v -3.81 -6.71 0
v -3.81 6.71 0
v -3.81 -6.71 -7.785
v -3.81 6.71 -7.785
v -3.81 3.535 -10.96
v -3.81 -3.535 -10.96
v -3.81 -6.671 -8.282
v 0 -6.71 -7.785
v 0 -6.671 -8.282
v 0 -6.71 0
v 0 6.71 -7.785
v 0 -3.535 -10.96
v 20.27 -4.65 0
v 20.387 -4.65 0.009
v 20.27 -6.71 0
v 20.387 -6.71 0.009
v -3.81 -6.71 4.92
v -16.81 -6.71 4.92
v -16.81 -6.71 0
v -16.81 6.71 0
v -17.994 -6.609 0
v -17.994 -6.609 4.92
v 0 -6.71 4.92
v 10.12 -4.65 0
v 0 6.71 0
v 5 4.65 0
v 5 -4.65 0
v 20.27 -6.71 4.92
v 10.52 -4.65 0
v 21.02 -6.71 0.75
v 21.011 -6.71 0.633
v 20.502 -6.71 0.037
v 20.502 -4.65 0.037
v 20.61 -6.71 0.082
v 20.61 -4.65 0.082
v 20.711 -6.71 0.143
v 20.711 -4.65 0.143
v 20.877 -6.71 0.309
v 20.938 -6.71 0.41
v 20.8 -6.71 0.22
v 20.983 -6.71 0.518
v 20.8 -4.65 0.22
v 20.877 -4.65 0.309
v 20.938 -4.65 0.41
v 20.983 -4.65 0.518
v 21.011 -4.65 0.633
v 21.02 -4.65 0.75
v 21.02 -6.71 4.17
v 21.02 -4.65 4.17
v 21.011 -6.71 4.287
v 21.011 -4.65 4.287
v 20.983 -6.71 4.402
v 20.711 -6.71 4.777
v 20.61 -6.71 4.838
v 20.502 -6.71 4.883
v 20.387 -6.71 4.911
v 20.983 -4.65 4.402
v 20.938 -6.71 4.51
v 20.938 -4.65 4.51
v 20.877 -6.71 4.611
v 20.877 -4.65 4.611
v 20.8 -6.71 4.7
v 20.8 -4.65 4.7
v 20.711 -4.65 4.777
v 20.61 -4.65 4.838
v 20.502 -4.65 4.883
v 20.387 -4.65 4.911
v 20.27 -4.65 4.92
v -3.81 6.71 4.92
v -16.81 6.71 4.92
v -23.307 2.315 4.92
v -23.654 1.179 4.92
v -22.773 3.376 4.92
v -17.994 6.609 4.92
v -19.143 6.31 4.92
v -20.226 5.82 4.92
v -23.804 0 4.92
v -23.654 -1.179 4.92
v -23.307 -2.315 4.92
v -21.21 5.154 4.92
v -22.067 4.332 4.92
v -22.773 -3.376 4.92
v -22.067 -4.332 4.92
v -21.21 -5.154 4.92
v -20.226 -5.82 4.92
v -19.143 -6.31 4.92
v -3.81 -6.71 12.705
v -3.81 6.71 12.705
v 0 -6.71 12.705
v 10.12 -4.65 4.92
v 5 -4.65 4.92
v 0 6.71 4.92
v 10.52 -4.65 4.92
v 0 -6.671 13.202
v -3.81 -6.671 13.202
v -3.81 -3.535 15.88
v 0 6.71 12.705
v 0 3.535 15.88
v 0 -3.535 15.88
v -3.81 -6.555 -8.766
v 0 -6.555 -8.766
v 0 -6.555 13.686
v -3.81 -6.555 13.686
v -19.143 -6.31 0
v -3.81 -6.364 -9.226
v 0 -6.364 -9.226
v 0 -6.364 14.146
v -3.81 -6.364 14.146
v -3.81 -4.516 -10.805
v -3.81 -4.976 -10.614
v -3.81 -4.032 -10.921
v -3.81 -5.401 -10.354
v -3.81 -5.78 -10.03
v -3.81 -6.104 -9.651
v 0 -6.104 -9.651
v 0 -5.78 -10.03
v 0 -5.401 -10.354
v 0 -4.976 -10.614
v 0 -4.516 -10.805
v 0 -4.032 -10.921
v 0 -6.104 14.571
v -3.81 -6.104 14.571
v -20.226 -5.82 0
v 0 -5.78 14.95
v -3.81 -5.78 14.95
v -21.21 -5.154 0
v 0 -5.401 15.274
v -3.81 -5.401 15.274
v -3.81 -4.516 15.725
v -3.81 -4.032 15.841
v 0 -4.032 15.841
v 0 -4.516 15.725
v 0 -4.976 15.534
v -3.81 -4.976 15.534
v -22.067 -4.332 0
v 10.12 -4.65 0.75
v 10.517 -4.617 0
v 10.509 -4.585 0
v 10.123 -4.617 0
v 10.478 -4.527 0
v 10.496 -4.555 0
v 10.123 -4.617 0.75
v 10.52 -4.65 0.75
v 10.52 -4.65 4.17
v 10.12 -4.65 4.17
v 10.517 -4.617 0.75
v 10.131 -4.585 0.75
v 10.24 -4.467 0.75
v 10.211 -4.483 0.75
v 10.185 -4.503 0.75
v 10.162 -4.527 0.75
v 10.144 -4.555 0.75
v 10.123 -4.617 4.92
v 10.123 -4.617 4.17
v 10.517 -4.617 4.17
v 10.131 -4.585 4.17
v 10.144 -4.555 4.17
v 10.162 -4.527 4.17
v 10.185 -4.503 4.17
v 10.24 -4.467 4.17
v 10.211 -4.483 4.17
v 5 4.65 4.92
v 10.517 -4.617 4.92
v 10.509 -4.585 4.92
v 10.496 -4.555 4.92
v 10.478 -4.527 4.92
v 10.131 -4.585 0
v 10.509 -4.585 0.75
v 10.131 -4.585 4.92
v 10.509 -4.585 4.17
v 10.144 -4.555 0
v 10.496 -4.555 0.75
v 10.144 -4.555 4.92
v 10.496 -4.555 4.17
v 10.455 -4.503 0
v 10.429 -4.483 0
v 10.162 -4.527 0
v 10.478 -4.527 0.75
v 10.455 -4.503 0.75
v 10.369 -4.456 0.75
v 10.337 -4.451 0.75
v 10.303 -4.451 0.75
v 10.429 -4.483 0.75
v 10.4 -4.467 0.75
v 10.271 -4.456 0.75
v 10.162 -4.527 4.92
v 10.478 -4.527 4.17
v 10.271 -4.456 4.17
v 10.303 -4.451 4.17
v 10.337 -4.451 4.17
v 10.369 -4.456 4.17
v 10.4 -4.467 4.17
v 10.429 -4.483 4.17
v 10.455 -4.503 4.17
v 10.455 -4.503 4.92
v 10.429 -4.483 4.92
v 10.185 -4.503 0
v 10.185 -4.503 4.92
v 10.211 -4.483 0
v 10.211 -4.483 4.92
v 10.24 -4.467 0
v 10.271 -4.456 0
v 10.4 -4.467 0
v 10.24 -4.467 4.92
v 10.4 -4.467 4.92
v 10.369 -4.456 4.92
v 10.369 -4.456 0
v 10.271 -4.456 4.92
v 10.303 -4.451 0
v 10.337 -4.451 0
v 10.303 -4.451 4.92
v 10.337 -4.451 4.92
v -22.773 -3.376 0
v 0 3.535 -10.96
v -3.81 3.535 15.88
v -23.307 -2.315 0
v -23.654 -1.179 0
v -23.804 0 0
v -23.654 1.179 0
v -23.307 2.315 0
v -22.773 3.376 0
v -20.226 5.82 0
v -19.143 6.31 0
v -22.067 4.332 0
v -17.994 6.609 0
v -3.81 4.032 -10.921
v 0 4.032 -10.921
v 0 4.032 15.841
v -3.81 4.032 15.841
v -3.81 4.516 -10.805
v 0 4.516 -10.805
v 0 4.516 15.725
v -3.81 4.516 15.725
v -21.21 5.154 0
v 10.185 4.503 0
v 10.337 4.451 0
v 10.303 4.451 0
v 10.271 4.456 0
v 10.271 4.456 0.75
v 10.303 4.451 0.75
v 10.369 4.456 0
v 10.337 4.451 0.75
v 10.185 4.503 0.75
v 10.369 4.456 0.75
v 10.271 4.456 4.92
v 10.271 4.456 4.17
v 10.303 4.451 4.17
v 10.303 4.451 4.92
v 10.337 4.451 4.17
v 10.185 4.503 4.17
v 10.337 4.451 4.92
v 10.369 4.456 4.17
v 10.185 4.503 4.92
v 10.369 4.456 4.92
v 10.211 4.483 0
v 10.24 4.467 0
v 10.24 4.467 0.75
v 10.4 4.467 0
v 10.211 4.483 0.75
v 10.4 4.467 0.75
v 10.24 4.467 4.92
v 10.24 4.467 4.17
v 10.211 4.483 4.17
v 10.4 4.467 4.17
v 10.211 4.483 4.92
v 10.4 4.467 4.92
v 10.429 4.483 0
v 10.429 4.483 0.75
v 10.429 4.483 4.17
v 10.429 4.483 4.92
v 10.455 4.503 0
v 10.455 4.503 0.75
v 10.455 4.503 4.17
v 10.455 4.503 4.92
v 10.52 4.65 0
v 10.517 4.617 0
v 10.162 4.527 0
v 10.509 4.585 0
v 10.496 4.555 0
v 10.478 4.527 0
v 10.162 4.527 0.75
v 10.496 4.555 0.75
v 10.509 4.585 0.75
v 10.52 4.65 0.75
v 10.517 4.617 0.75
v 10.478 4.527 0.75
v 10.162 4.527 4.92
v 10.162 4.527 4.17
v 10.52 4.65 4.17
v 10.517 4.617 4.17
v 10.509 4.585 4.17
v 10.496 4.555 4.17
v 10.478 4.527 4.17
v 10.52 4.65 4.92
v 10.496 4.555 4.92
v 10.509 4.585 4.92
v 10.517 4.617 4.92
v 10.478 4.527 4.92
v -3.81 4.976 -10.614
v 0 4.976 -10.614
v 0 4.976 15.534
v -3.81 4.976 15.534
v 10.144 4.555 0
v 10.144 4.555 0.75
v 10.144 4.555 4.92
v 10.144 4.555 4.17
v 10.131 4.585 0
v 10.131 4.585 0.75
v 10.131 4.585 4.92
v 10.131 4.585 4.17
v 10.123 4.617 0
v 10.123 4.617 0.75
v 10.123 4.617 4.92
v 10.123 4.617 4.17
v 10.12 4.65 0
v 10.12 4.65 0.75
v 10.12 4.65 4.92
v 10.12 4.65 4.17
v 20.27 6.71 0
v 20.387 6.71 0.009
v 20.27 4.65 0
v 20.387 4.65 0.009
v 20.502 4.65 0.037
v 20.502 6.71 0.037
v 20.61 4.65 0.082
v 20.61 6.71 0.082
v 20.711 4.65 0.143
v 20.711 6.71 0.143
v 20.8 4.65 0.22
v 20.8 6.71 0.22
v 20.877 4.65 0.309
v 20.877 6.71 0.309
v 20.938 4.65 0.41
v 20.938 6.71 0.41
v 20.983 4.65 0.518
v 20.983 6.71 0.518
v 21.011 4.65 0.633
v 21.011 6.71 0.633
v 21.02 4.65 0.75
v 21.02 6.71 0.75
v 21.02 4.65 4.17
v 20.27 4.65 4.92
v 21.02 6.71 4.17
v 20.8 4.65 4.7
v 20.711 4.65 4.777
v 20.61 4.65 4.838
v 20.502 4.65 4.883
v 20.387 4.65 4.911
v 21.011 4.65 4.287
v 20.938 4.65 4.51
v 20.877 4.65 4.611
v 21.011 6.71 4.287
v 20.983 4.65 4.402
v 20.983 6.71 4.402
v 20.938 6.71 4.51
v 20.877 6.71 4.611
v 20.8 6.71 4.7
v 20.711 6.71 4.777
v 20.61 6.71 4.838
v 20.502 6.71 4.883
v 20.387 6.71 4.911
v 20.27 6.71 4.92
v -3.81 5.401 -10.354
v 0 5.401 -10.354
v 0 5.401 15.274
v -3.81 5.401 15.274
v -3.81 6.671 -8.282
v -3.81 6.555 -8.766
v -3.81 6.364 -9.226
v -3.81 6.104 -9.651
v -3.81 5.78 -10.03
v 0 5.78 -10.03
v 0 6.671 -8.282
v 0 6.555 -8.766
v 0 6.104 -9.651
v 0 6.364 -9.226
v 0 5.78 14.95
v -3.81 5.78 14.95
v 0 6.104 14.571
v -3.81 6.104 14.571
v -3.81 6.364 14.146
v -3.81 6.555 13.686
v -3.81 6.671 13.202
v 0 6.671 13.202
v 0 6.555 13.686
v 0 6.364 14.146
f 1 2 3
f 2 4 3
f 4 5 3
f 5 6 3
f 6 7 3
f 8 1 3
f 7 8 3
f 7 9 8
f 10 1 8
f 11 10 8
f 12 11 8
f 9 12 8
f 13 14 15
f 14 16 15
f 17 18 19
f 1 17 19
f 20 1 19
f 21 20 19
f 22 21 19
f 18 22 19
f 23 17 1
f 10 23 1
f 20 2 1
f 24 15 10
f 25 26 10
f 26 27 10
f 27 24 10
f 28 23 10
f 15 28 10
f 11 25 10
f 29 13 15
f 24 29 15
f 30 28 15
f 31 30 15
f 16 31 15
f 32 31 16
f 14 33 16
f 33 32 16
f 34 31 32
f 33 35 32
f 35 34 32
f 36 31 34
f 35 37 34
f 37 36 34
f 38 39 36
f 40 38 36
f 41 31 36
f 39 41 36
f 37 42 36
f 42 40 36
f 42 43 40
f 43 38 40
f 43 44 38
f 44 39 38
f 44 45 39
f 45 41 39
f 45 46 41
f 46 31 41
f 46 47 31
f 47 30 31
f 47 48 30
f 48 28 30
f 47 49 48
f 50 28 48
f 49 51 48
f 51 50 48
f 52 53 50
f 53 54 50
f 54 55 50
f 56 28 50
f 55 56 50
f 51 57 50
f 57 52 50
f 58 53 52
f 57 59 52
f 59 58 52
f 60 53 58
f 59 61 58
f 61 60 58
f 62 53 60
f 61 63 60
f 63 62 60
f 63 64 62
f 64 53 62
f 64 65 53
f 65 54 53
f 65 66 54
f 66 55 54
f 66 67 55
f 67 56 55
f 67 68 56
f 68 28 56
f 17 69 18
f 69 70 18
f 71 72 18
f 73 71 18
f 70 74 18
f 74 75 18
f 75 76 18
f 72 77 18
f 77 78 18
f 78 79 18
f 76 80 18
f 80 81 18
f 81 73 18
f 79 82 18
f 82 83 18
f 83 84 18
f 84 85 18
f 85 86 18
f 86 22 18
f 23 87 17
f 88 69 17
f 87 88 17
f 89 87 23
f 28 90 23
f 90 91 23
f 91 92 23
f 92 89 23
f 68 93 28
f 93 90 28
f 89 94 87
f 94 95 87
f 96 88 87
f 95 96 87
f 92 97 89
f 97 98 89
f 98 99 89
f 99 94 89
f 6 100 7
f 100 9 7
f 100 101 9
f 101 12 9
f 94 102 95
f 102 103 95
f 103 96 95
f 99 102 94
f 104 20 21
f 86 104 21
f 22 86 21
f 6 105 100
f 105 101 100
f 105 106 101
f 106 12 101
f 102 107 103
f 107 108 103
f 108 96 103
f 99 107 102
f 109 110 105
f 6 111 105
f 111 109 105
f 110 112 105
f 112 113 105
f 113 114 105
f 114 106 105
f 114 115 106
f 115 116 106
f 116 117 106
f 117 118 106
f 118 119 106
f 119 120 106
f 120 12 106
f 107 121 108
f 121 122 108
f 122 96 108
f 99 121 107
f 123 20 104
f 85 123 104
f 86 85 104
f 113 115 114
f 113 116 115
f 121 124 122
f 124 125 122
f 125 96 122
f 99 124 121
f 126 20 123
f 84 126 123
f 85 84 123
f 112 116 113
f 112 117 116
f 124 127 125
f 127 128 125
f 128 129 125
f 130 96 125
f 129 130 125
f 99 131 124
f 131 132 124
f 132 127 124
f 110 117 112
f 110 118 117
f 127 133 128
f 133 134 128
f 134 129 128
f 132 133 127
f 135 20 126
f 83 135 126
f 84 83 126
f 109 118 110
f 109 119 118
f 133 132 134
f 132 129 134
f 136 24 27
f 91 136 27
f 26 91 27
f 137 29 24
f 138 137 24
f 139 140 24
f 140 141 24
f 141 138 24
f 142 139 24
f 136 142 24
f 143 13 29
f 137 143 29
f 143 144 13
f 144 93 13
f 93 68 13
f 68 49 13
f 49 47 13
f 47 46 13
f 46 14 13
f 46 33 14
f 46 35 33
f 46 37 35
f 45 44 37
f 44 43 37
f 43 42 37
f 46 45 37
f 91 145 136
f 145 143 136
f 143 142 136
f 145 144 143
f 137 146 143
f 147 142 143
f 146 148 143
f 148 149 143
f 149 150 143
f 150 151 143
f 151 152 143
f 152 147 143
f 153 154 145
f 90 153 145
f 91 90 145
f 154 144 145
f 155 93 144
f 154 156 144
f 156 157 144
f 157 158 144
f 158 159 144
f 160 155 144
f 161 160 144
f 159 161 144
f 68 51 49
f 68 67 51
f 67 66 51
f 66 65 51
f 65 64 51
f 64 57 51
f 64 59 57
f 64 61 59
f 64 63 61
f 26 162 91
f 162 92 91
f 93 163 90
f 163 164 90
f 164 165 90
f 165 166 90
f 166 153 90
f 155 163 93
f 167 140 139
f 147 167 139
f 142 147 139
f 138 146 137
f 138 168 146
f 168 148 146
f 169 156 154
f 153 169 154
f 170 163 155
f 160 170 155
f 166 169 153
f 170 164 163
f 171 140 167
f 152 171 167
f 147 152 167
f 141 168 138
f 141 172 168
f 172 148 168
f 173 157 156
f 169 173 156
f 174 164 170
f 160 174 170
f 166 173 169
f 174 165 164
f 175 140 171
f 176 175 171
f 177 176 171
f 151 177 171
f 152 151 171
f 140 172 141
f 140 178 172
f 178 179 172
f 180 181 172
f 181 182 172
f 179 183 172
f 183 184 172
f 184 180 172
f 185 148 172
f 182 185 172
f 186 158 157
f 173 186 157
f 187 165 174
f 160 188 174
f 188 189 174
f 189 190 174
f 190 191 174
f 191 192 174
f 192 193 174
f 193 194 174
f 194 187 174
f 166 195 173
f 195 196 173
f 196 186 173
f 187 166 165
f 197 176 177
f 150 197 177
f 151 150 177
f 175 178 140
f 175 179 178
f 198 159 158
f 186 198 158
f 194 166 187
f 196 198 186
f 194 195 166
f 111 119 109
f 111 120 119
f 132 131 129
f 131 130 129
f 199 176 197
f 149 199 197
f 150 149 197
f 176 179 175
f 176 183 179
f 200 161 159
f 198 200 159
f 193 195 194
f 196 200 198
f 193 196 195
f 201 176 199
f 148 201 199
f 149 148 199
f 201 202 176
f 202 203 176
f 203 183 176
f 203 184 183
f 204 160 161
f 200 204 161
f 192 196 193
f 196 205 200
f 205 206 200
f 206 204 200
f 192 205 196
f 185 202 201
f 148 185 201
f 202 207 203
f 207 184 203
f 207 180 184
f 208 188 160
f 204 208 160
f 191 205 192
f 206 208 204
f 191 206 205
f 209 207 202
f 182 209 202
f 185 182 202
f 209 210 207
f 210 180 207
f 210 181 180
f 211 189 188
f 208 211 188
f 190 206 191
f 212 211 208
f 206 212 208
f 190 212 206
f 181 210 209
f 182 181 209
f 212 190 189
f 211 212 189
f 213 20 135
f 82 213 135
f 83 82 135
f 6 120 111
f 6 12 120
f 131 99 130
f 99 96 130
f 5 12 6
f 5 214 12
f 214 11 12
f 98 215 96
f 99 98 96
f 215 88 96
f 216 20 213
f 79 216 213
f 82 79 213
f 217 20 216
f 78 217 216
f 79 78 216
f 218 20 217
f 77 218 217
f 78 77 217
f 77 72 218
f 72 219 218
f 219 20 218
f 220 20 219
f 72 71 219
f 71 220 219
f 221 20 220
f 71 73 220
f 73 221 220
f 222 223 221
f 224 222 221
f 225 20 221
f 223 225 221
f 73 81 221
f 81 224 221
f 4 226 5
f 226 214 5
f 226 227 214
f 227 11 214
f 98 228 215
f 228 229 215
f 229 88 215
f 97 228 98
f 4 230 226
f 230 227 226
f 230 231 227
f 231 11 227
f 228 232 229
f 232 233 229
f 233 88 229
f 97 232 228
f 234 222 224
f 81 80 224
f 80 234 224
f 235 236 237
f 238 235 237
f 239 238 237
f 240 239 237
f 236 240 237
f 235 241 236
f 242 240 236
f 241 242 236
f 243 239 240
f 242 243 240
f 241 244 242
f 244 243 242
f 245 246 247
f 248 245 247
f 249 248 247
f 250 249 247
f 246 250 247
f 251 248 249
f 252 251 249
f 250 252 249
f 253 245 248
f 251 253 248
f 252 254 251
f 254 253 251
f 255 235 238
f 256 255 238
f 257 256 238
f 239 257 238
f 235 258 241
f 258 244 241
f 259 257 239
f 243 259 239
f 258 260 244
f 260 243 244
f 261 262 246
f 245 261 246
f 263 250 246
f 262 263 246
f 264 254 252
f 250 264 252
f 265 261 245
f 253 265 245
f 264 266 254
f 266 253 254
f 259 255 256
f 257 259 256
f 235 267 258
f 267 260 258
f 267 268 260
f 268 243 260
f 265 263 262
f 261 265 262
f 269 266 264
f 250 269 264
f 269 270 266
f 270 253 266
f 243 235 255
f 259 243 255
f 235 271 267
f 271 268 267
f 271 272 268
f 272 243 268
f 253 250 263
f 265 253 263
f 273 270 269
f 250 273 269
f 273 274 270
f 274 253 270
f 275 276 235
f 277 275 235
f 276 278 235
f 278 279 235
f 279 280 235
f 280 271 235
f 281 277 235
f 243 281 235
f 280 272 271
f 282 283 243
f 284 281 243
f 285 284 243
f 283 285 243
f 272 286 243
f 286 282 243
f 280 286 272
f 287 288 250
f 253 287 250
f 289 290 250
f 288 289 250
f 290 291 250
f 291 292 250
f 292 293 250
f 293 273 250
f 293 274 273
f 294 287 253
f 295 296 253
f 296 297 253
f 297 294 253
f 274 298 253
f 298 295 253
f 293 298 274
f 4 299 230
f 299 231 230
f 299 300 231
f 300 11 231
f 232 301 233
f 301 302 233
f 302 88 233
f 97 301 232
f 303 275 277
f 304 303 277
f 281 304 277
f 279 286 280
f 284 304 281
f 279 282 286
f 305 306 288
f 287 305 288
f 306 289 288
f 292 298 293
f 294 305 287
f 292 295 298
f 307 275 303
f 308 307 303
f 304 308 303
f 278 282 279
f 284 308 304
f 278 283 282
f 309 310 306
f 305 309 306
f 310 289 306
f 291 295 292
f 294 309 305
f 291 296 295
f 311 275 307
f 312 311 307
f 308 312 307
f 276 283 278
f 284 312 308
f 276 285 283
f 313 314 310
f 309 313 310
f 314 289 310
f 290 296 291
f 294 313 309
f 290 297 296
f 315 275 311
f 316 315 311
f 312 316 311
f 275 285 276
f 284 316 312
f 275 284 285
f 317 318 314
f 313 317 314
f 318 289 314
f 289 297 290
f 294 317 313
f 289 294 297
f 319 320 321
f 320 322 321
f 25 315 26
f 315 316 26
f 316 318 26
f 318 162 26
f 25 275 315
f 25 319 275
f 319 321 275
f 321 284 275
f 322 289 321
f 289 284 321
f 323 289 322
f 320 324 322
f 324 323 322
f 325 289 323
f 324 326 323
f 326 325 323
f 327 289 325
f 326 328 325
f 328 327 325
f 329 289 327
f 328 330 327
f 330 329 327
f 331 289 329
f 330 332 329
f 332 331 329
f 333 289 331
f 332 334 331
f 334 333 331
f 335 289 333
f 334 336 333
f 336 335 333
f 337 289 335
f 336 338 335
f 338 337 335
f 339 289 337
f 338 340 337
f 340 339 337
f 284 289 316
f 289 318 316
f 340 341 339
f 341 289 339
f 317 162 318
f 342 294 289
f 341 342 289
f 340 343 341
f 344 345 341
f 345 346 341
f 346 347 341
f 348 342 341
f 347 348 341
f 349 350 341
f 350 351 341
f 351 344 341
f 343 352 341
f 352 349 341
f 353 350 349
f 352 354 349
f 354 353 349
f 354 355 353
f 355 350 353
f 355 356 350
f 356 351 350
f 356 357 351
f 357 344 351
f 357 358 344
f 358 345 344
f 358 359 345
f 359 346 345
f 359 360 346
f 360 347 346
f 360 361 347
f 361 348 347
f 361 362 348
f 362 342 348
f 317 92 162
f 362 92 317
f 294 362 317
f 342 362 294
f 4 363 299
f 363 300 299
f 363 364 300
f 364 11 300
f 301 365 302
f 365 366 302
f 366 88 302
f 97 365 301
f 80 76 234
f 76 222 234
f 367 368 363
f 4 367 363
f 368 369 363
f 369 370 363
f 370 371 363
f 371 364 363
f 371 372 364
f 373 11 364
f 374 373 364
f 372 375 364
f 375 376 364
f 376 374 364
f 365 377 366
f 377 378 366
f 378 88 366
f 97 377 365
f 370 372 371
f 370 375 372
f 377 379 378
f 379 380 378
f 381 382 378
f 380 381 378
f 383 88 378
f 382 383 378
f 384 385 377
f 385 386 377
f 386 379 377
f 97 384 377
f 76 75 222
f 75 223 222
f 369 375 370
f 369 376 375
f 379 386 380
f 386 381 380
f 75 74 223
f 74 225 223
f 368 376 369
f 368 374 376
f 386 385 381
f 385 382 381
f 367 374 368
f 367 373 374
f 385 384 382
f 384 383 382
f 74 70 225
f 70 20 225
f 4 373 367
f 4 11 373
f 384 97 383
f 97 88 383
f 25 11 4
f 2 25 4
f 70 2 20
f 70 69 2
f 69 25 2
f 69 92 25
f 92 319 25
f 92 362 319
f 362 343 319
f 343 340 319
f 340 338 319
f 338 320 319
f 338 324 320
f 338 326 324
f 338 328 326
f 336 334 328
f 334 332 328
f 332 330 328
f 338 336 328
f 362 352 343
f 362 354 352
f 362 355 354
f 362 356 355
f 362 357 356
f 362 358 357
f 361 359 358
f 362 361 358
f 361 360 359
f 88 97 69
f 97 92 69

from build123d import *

# Parameters (mm, degrees)
BOSS_EXTRUDE1_DEPTH = 4.92
CUT_EXTRUDE1_REACH  = 27.419
CUT_EXTRUDE2_REACH  = 24.607
SKETCH3_W           = 3.42
SKETCH3_H           = 9.3
BOSS_EXTRUDE2_DEPTH = 3.81
SKETCH5_W           = 4.92
SKETCH5_H           = 13.42
BOSS_EXTRUDE3_DEPTH = 20
FILLET1_R           = 7


with BuildPart() as part:
    # Sketch1 → Boss-Extrude1 (new body)
    with BuildSketch(Plane.XY):
        with BuildLine():
            Line((0, -6.71), (0, 6.71))
            Line((0, 6.71), (21.02, 6.71))
            Line((21.02, 6.71), (21.02, 4.65))
            Line((21.02, 4.65), (10.52, 4.65))
            ThreePointArc((10.52, 4.65), (10.32, 4.45), (10.12, 4.65))
            Line((10.12, 4.65), (5, 4.65))
            Line((5, 4.65), (5, -4.65))
            Line((5, -4.65), (10.12, -4.65))
            ThreePointArc((10.12, -4.65), (10.32, -4.45), (10.52, -4.65))
            Line((10.52, -4.65), (21.02, -4.65))
            Line((21.02, -4.65), (21.02, -6.71))
            Line((21.02, -6.71), (0, -6.71))
        make_face()
    extrude(amount=BOSS_EXTRUDE1_DEPTH)

    # Cut-Extrude1: up to this face of the body (flat: up to its plane)
    cut_extrude1_end = Plane(part.part.faces().sort_by_distance((10.51, -6.71, 2.46))[0])
    # Sketch2 → Cut-Extrude1 (cut, up to the picked face)
    with BuildSketch(Plane(origin=(0, 6.71, 0), x_dir=(1, 0, 0), z_dir=(0, 1, 0)), mode=Mode.PRIVATE) as cut_extrude1_sk1:
        with BuildLine():
            Line((18.617685134, -4.92), (20.27, -4.92))
            ThreePointArc((20.27, -4.92), (20.800330086, -4.700330086), (21.02, -4.17))
            Line((21.02, -4.17), (21.02, -0.75))
            ThreePointArc((21.02, -0.75), (20.800330086, -0.219669914), (20.27, 0))
            Line((20.27, 0), (18.617685134, 0))
            Line((18.617685134, 0), (18.617685134, 2.663079407))
            Line((18.617685134, 2.663079407), (23.784387399, 2.663079407))
            Line((23.784387399, 2.663079407), (23.784387399, -9.532215778))
            Line((23.784387399, -9.532215778), (18.617685134, -9.532215778))
            Line((18.617685134, -9.532215778), (18.617685134, -4.92))
        make_face()
    cut_extrude1_tool1 = split(extrude(cut_extrude1_sk1.sketch, amount=-CUT_EXTRUDE1_REACH, mode=Mode.PRIVATE), bisect_by=cut_extrude1_end, keep=Keep.BOTH, mode=Mode.PRIVATE)
    add(cut_extrude1_tool1.solids().sort_by(Axis((21.51704, 6.71, 3.653957), (0, -1, 0)))[0], mode=Mode.SUBTRACT)

    # Cut-Extrude2: up to this face of the body (flat: up to its plane)
    cut_extrude2_end = Plane(part.part.faces().sort_by_distance((5, 0, 2.46))[0])
    # Sketch3 → Cut-Extrude2 (cut, up to the picked face)
    with BuildSketch(Plane(origin=(21.02, 0, 0), x_dir=(0, 0, -1), z_dir=(1, 0, 0)), mode=Mode.PRIVATE) as cut_extrude2_sk1:
        with Locations((-2.46, 0)):
            Rectangle(SKETCH3_W, SKETCH3_H)
    cut_extrude2_tool1 = split(extrude(cut_extrude2_sk1.sketch, amount=-CUT_EXTRUDE2_REACH, mode=Mode.PRIVATE), bisect_by=cut_extrude2_end, keep=Keep.BOTH, mode=Mode.PRIVATE)
    add(cut_extrude2_tool1.solids().sort_by(Axis((21.02, 0, 2.46), (-1, 0, 0)))[0], mode=Mode.SUBTRACT)

    # Sketch4 → Boss-Extrude2 (add)
    with BuildSketch(Plane.ZY):
        with BuildLine():
            Line((12.705, -6.71), (-7.785, -6.71))
            ThreePointArc((-7.785, -6.71), (-10.03006403, -5.78006403), (-10.96, -3.535))
            Line((-10.96, -3.535), (-10.96, 3.535))
            ThreePointArc((-10.96, 3.535), (-10.03006403, 5.78006403), (-7.785, 6.71))
            Line((-7.785, 6.71), (12.705, 6.71))
            ThreePointArc((12.705, 6.71), (14.95006403, 5.78006403), (15.88, 3.535))
            Line((15.88, 3.535), (15.88, -3.535))
            ThreePointArc((15.88, -3.535), (14.95006403, -5.78006403), (12.705, -6.71))
        make_face()
    extrude(amount=BOSS_EXTRUDE2_DEPTH)

    # Sketch5 → Boss-Extrude3 (add)
    with BuildSketch(Plane.ZY.offset(3.81)):
        with Locations((2.46, 0)):
            Rectangle(SKETCH5_W, SKETCH5_H)
    extrude(amount=BOSS_EXTRUDE3_DEPTH)

    # Fillet1
    # the kernel refuses this fillet: 7 mm, written as the material it takes off along each edge
    with BuildSketch(Plane(origin=(-23.81, -6.71, 22.42), x_dir=(1, 0, 0), z_dir=(0, 0, -1)), Plane(origin=(-23.81, 6.71, -17.5), x_dir=(1, 0, 0), z_dir=(0, 0, 1))) as fillet1_piece_1:
        with BuildLine():
            CenterArc((FILLET1_R, -FILLET1_R), FILLET1_R, 90, 90)
            Line((0, -FILLET1_R), (0, 0))
            Line((0, 0), (FILLET1_R, 0))
        make_face()
    extrude(amount=39.92, mode=Mode.SUBTRACT)


solid = part.part
